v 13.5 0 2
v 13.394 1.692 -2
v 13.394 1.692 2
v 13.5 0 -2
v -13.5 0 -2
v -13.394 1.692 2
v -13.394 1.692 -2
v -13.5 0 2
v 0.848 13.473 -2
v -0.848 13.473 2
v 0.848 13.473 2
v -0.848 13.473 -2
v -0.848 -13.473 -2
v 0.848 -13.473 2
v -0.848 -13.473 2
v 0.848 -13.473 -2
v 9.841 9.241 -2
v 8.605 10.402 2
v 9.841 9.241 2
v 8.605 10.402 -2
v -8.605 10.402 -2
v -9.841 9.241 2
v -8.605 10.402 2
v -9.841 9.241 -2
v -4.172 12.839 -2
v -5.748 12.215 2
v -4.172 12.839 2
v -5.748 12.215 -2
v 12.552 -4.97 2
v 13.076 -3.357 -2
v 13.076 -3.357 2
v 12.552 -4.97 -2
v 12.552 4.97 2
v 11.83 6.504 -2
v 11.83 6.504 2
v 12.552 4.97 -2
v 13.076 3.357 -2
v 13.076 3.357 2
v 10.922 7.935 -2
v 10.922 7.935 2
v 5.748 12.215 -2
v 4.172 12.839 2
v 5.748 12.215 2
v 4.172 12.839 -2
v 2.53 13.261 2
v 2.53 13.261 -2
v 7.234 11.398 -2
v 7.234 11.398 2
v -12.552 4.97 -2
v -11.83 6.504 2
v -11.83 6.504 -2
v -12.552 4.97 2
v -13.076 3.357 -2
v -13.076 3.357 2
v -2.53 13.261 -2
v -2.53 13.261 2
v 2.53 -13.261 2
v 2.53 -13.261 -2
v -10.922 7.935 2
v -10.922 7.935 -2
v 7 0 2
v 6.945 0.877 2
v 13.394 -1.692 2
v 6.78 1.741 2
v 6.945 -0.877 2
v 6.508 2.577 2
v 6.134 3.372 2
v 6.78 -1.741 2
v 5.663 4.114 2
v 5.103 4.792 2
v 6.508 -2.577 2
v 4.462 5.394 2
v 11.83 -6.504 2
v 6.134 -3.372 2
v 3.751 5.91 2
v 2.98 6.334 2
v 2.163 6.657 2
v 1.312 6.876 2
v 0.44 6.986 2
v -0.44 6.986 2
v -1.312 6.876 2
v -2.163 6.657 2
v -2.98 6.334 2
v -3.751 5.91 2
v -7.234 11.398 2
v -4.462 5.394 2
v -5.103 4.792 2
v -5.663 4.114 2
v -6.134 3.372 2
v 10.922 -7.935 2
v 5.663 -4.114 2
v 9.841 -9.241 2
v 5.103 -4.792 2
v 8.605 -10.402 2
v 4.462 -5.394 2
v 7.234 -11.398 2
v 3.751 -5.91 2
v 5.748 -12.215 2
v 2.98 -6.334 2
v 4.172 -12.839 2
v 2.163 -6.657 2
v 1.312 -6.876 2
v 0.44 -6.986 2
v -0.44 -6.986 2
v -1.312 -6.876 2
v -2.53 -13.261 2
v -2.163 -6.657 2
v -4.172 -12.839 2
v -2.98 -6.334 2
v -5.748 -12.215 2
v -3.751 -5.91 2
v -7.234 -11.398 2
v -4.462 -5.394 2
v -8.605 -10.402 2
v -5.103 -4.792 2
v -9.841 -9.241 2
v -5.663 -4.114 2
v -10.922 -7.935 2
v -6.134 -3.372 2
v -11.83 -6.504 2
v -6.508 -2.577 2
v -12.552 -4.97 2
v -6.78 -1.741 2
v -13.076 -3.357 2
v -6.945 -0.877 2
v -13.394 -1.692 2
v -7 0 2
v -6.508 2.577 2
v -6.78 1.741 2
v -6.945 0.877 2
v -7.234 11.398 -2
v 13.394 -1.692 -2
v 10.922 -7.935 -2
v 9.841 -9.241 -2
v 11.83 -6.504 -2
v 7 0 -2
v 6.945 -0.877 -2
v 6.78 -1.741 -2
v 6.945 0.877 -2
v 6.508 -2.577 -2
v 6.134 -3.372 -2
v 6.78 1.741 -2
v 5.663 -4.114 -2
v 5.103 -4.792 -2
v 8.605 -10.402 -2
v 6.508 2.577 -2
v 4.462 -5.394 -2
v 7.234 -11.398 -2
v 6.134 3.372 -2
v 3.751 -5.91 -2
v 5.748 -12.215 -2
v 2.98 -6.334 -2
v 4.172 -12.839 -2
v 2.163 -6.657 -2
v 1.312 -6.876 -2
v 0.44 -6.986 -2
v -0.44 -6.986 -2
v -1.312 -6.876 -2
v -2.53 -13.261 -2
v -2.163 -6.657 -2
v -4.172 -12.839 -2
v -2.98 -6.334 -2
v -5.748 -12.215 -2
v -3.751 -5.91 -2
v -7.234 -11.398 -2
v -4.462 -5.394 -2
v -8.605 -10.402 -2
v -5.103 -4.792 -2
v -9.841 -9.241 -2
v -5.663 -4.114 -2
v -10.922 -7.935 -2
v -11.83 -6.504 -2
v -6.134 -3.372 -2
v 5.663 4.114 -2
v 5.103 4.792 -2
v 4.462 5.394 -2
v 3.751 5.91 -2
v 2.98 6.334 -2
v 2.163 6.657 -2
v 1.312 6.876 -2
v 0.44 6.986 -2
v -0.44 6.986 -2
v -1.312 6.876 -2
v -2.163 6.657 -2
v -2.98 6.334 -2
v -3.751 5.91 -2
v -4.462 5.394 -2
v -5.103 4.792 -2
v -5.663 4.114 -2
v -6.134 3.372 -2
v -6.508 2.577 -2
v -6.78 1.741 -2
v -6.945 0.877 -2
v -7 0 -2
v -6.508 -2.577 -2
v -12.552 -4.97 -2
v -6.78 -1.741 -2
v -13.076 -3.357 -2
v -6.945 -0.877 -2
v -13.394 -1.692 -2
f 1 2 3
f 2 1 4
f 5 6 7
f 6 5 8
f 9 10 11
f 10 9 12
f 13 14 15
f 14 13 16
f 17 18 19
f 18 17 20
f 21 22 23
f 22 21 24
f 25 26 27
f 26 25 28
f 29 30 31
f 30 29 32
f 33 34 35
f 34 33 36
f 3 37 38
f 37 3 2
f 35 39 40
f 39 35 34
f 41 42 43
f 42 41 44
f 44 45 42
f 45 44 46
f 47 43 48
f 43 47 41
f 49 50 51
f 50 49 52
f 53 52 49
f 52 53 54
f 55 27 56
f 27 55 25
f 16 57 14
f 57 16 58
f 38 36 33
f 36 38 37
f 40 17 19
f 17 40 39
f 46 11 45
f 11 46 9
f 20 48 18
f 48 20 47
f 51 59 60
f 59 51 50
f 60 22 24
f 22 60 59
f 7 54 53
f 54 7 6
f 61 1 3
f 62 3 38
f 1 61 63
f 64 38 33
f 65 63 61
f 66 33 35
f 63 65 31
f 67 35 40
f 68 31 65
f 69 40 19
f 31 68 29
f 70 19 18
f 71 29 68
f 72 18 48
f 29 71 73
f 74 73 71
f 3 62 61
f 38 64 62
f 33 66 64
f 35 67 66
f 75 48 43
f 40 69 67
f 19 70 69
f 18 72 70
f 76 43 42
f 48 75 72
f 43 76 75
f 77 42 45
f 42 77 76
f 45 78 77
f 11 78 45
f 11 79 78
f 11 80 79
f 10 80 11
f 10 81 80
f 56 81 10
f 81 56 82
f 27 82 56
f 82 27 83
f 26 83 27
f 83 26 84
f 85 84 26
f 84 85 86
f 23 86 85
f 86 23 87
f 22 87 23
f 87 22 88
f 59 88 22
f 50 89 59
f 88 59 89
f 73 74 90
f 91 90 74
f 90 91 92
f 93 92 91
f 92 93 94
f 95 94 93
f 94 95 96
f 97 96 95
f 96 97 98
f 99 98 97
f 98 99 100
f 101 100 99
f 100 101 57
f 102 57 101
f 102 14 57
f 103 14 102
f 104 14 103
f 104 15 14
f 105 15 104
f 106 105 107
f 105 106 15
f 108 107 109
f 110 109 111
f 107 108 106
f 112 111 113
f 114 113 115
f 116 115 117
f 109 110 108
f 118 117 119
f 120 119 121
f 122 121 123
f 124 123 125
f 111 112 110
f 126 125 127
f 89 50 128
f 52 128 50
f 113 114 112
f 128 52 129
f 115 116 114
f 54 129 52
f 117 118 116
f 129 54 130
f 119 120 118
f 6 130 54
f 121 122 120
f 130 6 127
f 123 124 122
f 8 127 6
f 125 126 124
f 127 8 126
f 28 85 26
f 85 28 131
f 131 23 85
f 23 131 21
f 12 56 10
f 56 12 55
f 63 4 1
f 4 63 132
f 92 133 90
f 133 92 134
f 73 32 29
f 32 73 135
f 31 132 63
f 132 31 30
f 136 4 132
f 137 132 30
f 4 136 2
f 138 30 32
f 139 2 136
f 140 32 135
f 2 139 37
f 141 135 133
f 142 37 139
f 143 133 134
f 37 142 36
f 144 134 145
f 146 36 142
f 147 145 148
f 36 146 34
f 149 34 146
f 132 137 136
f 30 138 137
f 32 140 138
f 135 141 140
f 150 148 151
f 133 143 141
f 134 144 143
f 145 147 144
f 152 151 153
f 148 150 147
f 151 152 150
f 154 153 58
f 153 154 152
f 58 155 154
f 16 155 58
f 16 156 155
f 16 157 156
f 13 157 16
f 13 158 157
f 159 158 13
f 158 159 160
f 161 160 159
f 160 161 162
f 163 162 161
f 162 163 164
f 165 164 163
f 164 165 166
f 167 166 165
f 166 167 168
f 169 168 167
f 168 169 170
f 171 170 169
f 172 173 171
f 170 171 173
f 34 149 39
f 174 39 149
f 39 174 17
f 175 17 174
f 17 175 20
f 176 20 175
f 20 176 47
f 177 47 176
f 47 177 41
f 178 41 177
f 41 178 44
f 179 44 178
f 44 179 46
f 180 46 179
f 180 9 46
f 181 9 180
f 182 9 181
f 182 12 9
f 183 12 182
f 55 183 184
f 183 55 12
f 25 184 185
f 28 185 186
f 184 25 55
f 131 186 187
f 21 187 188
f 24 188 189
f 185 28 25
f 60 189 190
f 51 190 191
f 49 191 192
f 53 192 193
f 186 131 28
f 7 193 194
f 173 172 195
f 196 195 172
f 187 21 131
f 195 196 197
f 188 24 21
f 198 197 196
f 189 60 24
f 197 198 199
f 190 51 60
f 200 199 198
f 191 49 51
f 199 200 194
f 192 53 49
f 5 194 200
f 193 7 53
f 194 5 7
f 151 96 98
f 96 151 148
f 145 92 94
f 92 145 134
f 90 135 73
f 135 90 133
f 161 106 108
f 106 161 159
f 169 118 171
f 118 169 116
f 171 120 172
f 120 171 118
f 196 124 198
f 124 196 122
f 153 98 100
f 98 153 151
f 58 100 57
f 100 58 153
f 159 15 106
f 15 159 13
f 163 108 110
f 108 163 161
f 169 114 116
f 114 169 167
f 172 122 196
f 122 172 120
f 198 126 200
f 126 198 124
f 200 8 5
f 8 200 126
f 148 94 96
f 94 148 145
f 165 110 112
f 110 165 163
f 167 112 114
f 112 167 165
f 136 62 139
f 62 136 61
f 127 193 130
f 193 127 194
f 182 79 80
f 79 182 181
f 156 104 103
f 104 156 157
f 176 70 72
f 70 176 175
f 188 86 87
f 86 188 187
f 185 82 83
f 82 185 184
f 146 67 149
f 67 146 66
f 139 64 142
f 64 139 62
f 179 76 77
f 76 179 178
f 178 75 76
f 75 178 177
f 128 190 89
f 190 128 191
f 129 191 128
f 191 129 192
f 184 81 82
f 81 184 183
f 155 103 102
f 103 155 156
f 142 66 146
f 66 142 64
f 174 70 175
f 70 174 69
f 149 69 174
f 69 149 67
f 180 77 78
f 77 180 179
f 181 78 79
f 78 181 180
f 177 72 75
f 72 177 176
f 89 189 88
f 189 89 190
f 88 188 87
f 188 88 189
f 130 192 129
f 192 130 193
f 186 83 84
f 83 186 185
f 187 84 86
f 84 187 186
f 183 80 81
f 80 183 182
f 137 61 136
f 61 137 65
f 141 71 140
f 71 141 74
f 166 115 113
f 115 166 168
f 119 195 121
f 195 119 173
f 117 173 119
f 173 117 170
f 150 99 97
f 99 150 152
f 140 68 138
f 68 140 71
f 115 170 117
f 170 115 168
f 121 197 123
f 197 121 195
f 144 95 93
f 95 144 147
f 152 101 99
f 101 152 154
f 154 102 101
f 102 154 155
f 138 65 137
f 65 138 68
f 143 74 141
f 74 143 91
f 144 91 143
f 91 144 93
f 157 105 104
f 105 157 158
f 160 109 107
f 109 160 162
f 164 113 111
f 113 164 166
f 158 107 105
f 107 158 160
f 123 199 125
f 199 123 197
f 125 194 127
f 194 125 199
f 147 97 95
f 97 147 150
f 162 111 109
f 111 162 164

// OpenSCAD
$fn = 50;


difference() {
	union() {
		translate(v = [0, 0, -2.0000000000]) {
			cylinder(h = 4, r = 13.5000000000);
		}
	}
	union() {
		translate(v = [0, 0, -100.0000000000]) {
			cylinder(h = 200, r = 7);
		}
	}
}
